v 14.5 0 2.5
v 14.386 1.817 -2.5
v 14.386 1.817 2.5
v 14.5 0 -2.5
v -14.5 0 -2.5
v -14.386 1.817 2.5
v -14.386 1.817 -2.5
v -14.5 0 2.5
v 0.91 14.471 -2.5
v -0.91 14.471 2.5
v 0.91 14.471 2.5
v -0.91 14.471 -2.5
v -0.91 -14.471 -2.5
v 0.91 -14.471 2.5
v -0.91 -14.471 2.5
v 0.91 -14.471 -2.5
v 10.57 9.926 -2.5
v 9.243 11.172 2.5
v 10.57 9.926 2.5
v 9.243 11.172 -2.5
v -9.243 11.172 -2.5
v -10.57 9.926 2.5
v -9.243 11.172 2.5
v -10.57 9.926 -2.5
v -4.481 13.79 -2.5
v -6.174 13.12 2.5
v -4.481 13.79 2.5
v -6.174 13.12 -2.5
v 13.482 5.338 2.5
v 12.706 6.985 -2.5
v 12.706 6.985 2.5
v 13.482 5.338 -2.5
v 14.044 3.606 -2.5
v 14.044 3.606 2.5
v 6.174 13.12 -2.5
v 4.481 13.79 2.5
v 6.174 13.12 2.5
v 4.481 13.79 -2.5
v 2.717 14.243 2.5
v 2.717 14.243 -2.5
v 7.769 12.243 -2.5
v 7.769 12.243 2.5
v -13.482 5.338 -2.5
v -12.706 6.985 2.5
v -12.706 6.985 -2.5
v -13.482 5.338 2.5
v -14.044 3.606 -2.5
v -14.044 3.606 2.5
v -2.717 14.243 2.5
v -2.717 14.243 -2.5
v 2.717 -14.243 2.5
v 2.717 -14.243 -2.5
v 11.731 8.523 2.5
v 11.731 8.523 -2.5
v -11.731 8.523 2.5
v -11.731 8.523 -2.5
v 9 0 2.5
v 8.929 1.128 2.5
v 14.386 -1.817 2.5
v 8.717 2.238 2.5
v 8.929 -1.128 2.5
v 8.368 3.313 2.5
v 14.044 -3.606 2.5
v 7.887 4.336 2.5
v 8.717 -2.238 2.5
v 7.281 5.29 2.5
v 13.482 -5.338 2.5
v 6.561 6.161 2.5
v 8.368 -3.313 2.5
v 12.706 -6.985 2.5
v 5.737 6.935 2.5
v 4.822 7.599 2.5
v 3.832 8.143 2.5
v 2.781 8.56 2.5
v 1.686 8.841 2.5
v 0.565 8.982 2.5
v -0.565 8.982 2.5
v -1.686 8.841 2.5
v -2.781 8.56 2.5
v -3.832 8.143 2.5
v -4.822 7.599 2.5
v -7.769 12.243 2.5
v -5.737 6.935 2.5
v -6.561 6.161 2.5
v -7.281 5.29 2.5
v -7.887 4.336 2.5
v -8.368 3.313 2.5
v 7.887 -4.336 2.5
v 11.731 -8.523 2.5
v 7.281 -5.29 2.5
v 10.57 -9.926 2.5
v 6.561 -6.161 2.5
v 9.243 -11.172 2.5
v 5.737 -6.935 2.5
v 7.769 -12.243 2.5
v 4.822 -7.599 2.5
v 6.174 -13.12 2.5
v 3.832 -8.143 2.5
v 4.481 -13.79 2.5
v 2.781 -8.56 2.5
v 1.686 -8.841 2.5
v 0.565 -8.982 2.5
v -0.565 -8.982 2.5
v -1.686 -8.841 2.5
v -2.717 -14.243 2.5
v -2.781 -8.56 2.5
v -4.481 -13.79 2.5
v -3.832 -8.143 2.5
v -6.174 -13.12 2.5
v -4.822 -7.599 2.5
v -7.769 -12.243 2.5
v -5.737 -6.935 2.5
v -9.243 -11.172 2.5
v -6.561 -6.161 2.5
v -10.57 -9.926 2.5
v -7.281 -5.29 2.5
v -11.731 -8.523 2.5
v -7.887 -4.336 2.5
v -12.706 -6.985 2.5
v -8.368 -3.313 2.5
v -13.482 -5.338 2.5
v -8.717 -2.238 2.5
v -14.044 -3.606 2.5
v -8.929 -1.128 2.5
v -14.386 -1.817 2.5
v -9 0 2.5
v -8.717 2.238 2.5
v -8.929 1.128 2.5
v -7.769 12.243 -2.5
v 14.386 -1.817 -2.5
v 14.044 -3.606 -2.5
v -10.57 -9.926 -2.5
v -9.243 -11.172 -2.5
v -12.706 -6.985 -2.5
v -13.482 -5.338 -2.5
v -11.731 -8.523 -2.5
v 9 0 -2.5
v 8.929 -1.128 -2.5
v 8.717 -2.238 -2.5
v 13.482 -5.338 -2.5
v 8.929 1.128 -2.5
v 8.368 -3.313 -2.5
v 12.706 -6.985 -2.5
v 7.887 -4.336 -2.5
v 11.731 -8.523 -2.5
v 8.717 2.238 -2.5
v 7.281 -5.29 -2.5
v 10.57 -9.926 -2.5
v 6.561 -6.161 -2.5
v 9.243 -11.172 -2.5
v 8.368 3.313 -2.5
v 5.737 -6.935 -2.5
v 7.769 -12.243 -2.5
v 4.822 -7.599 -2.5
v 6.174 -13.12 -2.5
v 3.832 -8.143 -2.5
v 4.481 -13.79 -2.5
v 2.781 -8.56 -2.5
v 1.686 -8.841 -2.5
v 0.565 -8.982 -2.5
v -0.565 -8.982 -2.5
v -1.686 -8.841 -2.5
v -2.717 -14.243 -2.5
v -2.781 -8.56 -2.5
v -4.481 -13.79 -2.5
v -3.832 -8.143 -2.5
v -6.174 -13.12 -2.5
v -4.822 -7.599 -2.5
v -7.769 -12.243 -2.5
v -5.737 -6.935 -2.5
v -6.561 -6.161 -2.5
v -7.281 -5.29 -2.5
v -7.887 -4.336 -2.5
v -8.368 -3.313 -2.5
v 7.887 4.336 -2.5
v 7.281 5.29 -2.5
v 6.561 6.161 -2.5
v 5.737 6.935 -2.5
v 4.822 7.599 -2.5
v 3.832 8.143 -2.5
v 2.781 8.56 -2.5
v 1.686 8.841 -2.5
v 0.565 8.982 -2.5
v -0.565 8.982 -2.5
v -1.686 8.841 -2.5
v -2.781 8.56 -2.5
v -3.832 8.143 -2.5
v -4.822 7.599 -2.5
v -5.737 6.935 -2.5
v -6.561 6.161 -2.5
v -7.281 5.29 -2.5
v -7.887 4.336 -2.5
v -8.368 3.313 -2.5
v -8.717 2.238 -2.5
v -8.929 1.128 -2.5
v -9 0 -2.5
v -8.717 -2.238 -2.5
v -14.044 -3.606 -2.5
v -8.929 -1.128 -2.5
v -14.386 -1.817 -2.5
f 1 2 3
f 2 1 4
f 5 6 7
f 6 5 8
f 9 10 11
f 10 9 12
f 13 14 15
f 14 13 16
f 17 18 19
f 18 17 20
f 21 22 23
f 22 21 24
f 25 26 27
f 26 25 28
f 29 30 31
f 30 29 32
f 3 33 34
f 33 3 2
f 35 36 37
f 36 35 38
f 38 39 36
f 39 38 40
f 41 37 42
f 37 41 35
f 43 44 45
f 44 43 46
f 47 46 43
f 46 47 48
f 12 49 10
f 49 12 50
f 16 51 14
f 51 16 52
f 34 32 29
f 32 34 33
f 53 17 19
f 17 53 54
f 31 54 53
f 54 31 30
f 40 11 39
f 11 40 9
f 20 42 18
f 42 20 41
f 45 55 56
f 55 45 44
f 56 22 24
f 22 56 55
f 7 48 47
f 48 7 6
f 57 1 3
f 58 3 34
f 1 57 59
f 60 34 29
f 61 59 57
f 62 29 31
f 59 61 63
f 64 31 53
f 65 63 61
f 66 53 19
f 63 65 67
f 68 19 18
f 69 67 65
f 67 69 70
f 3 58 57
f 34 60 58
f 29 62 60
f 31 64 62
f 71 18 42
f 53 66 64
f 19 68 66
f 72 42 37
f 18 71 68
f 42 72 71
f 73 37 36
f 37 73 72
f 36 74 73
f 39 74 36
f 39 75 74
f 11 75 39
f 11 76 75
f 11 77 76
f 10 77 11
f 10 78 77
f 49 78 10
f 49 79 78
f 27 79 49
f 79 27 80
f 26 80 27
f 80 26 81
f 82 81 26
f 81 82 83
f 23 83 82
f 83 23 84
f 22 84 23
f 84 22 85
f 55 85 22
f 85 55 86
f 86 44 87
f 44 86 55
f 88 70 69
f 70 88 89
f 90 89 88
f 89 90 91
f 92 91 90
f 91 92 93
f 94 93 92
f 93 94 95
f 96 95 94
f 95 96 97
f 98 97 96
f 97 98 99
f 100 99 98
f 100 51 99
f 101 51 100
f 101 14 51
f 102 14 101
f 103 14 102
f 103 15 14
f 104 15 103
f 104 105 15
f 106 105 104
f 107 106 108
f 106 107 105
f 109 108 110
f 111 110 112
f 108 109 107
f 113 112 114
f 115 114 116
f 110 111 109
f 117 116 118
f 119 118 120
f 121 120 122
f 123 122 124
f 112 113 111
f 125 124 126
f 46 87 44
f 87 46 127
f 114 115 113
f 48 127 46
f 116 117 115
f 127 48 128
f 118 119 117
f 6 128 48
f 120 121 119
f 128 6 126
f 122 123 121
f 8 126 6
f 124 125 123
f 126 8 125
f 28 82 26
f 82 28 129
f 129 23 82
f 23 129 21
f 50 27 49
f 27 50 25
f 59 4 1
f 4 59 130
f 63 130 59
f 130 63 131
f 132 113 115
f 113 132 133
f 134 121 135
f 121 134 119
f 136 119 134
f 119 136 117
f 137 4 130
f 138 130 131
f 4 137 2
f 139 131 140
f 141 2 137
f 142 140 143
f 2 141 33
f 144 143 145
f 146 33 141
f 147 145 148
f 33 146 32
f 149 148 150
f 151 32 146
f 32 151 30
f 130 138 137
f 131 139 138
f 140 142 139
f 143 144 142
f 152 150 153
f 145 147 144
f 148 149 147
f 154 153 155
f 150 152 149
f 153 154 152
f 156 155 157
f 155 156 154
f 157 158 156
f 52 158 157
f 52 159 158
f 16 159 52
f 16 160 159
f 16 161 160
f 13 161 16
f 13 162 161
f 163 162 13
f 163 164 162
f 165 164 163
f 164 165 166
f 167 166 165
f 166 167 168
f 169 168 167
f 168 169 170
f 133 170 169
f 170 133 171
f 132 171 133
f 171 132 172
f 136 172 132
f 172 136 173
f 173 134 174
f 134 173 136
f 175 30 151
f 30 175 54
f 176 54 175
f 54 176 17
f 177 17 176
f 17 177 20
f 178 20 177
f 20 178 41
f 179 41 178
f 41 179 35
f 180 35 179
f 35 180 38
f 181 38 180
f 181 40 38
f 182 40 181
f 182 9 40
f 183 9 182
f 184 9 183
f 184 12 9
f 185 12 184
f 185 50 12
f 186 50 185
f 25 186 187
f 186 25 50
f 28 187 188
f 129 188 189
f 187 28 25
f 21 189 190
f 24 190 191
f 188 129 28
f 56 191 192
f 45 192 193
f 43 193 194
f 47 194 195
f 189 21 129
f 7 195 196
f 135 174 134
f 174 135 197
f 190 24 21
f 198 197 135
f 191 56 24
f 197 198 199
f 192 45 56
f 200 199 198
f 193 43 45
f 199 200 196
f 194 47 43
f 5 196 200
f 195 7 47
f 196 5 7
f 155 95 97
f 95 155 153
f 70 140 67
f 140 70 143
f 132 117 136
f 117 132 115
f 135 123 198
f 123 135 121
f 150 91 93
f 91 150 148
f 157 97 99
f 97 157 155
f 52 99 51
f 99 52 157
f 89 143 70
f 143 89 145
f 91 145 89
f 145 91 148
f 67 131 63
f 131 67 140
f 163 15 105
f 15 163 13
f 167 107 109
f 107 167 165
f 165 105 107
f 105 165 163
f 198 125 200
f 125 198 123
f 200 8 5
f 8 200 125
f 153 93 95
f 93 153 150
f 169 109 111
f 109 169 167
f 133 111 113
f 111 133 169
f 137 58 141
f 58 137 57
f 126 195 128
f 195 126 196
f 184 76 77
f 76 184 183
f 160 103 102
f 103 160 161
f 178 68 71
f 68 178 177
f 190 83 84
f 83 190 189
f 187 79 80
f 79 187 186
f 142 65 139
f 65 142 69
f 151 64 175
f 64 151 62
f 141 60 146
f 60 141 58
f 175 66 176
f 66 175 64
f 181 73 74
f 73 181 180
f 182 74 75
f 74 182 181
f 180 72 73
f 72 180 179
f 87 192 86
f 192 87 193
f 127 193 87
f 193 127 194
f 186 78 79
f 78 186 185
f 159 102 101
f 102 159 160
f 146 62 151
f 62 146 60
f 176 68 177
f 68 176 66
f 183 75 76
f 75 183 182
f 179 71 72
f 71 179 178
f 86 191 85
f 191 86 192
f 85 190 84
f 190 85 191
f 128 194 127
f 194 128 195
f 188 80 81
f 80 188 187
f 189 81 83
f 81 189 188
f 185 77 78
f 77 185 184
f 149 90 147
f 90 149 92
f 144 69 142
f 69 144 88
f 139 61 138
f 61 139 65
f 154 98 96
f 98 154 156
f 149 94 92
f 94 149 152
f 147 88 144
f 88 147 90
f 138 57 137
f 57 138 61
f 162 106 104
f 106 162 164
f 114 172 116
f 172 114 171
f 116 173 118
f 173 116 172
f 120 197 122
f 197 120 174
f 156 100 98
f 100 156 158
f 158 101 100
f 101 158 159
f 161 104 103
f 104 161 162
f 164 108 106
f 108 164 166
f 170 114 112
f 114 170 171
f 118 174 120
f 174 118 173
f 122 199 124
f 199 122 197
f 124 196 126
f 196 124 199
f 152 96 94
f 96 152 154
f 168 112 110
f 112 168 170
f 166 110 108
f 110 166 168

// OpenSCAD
$fn = 50;


difference() {
	union() {
		translate(v = [0, 0, -2.5000000000]) {
			cylinder(h = 5, r = 14.5000000000);
		}
	}
	union() {
		translate(v = [0, 0, -100.0000000000]) {
			cylinder(h = 200, r = 9);
		}
	}
}
